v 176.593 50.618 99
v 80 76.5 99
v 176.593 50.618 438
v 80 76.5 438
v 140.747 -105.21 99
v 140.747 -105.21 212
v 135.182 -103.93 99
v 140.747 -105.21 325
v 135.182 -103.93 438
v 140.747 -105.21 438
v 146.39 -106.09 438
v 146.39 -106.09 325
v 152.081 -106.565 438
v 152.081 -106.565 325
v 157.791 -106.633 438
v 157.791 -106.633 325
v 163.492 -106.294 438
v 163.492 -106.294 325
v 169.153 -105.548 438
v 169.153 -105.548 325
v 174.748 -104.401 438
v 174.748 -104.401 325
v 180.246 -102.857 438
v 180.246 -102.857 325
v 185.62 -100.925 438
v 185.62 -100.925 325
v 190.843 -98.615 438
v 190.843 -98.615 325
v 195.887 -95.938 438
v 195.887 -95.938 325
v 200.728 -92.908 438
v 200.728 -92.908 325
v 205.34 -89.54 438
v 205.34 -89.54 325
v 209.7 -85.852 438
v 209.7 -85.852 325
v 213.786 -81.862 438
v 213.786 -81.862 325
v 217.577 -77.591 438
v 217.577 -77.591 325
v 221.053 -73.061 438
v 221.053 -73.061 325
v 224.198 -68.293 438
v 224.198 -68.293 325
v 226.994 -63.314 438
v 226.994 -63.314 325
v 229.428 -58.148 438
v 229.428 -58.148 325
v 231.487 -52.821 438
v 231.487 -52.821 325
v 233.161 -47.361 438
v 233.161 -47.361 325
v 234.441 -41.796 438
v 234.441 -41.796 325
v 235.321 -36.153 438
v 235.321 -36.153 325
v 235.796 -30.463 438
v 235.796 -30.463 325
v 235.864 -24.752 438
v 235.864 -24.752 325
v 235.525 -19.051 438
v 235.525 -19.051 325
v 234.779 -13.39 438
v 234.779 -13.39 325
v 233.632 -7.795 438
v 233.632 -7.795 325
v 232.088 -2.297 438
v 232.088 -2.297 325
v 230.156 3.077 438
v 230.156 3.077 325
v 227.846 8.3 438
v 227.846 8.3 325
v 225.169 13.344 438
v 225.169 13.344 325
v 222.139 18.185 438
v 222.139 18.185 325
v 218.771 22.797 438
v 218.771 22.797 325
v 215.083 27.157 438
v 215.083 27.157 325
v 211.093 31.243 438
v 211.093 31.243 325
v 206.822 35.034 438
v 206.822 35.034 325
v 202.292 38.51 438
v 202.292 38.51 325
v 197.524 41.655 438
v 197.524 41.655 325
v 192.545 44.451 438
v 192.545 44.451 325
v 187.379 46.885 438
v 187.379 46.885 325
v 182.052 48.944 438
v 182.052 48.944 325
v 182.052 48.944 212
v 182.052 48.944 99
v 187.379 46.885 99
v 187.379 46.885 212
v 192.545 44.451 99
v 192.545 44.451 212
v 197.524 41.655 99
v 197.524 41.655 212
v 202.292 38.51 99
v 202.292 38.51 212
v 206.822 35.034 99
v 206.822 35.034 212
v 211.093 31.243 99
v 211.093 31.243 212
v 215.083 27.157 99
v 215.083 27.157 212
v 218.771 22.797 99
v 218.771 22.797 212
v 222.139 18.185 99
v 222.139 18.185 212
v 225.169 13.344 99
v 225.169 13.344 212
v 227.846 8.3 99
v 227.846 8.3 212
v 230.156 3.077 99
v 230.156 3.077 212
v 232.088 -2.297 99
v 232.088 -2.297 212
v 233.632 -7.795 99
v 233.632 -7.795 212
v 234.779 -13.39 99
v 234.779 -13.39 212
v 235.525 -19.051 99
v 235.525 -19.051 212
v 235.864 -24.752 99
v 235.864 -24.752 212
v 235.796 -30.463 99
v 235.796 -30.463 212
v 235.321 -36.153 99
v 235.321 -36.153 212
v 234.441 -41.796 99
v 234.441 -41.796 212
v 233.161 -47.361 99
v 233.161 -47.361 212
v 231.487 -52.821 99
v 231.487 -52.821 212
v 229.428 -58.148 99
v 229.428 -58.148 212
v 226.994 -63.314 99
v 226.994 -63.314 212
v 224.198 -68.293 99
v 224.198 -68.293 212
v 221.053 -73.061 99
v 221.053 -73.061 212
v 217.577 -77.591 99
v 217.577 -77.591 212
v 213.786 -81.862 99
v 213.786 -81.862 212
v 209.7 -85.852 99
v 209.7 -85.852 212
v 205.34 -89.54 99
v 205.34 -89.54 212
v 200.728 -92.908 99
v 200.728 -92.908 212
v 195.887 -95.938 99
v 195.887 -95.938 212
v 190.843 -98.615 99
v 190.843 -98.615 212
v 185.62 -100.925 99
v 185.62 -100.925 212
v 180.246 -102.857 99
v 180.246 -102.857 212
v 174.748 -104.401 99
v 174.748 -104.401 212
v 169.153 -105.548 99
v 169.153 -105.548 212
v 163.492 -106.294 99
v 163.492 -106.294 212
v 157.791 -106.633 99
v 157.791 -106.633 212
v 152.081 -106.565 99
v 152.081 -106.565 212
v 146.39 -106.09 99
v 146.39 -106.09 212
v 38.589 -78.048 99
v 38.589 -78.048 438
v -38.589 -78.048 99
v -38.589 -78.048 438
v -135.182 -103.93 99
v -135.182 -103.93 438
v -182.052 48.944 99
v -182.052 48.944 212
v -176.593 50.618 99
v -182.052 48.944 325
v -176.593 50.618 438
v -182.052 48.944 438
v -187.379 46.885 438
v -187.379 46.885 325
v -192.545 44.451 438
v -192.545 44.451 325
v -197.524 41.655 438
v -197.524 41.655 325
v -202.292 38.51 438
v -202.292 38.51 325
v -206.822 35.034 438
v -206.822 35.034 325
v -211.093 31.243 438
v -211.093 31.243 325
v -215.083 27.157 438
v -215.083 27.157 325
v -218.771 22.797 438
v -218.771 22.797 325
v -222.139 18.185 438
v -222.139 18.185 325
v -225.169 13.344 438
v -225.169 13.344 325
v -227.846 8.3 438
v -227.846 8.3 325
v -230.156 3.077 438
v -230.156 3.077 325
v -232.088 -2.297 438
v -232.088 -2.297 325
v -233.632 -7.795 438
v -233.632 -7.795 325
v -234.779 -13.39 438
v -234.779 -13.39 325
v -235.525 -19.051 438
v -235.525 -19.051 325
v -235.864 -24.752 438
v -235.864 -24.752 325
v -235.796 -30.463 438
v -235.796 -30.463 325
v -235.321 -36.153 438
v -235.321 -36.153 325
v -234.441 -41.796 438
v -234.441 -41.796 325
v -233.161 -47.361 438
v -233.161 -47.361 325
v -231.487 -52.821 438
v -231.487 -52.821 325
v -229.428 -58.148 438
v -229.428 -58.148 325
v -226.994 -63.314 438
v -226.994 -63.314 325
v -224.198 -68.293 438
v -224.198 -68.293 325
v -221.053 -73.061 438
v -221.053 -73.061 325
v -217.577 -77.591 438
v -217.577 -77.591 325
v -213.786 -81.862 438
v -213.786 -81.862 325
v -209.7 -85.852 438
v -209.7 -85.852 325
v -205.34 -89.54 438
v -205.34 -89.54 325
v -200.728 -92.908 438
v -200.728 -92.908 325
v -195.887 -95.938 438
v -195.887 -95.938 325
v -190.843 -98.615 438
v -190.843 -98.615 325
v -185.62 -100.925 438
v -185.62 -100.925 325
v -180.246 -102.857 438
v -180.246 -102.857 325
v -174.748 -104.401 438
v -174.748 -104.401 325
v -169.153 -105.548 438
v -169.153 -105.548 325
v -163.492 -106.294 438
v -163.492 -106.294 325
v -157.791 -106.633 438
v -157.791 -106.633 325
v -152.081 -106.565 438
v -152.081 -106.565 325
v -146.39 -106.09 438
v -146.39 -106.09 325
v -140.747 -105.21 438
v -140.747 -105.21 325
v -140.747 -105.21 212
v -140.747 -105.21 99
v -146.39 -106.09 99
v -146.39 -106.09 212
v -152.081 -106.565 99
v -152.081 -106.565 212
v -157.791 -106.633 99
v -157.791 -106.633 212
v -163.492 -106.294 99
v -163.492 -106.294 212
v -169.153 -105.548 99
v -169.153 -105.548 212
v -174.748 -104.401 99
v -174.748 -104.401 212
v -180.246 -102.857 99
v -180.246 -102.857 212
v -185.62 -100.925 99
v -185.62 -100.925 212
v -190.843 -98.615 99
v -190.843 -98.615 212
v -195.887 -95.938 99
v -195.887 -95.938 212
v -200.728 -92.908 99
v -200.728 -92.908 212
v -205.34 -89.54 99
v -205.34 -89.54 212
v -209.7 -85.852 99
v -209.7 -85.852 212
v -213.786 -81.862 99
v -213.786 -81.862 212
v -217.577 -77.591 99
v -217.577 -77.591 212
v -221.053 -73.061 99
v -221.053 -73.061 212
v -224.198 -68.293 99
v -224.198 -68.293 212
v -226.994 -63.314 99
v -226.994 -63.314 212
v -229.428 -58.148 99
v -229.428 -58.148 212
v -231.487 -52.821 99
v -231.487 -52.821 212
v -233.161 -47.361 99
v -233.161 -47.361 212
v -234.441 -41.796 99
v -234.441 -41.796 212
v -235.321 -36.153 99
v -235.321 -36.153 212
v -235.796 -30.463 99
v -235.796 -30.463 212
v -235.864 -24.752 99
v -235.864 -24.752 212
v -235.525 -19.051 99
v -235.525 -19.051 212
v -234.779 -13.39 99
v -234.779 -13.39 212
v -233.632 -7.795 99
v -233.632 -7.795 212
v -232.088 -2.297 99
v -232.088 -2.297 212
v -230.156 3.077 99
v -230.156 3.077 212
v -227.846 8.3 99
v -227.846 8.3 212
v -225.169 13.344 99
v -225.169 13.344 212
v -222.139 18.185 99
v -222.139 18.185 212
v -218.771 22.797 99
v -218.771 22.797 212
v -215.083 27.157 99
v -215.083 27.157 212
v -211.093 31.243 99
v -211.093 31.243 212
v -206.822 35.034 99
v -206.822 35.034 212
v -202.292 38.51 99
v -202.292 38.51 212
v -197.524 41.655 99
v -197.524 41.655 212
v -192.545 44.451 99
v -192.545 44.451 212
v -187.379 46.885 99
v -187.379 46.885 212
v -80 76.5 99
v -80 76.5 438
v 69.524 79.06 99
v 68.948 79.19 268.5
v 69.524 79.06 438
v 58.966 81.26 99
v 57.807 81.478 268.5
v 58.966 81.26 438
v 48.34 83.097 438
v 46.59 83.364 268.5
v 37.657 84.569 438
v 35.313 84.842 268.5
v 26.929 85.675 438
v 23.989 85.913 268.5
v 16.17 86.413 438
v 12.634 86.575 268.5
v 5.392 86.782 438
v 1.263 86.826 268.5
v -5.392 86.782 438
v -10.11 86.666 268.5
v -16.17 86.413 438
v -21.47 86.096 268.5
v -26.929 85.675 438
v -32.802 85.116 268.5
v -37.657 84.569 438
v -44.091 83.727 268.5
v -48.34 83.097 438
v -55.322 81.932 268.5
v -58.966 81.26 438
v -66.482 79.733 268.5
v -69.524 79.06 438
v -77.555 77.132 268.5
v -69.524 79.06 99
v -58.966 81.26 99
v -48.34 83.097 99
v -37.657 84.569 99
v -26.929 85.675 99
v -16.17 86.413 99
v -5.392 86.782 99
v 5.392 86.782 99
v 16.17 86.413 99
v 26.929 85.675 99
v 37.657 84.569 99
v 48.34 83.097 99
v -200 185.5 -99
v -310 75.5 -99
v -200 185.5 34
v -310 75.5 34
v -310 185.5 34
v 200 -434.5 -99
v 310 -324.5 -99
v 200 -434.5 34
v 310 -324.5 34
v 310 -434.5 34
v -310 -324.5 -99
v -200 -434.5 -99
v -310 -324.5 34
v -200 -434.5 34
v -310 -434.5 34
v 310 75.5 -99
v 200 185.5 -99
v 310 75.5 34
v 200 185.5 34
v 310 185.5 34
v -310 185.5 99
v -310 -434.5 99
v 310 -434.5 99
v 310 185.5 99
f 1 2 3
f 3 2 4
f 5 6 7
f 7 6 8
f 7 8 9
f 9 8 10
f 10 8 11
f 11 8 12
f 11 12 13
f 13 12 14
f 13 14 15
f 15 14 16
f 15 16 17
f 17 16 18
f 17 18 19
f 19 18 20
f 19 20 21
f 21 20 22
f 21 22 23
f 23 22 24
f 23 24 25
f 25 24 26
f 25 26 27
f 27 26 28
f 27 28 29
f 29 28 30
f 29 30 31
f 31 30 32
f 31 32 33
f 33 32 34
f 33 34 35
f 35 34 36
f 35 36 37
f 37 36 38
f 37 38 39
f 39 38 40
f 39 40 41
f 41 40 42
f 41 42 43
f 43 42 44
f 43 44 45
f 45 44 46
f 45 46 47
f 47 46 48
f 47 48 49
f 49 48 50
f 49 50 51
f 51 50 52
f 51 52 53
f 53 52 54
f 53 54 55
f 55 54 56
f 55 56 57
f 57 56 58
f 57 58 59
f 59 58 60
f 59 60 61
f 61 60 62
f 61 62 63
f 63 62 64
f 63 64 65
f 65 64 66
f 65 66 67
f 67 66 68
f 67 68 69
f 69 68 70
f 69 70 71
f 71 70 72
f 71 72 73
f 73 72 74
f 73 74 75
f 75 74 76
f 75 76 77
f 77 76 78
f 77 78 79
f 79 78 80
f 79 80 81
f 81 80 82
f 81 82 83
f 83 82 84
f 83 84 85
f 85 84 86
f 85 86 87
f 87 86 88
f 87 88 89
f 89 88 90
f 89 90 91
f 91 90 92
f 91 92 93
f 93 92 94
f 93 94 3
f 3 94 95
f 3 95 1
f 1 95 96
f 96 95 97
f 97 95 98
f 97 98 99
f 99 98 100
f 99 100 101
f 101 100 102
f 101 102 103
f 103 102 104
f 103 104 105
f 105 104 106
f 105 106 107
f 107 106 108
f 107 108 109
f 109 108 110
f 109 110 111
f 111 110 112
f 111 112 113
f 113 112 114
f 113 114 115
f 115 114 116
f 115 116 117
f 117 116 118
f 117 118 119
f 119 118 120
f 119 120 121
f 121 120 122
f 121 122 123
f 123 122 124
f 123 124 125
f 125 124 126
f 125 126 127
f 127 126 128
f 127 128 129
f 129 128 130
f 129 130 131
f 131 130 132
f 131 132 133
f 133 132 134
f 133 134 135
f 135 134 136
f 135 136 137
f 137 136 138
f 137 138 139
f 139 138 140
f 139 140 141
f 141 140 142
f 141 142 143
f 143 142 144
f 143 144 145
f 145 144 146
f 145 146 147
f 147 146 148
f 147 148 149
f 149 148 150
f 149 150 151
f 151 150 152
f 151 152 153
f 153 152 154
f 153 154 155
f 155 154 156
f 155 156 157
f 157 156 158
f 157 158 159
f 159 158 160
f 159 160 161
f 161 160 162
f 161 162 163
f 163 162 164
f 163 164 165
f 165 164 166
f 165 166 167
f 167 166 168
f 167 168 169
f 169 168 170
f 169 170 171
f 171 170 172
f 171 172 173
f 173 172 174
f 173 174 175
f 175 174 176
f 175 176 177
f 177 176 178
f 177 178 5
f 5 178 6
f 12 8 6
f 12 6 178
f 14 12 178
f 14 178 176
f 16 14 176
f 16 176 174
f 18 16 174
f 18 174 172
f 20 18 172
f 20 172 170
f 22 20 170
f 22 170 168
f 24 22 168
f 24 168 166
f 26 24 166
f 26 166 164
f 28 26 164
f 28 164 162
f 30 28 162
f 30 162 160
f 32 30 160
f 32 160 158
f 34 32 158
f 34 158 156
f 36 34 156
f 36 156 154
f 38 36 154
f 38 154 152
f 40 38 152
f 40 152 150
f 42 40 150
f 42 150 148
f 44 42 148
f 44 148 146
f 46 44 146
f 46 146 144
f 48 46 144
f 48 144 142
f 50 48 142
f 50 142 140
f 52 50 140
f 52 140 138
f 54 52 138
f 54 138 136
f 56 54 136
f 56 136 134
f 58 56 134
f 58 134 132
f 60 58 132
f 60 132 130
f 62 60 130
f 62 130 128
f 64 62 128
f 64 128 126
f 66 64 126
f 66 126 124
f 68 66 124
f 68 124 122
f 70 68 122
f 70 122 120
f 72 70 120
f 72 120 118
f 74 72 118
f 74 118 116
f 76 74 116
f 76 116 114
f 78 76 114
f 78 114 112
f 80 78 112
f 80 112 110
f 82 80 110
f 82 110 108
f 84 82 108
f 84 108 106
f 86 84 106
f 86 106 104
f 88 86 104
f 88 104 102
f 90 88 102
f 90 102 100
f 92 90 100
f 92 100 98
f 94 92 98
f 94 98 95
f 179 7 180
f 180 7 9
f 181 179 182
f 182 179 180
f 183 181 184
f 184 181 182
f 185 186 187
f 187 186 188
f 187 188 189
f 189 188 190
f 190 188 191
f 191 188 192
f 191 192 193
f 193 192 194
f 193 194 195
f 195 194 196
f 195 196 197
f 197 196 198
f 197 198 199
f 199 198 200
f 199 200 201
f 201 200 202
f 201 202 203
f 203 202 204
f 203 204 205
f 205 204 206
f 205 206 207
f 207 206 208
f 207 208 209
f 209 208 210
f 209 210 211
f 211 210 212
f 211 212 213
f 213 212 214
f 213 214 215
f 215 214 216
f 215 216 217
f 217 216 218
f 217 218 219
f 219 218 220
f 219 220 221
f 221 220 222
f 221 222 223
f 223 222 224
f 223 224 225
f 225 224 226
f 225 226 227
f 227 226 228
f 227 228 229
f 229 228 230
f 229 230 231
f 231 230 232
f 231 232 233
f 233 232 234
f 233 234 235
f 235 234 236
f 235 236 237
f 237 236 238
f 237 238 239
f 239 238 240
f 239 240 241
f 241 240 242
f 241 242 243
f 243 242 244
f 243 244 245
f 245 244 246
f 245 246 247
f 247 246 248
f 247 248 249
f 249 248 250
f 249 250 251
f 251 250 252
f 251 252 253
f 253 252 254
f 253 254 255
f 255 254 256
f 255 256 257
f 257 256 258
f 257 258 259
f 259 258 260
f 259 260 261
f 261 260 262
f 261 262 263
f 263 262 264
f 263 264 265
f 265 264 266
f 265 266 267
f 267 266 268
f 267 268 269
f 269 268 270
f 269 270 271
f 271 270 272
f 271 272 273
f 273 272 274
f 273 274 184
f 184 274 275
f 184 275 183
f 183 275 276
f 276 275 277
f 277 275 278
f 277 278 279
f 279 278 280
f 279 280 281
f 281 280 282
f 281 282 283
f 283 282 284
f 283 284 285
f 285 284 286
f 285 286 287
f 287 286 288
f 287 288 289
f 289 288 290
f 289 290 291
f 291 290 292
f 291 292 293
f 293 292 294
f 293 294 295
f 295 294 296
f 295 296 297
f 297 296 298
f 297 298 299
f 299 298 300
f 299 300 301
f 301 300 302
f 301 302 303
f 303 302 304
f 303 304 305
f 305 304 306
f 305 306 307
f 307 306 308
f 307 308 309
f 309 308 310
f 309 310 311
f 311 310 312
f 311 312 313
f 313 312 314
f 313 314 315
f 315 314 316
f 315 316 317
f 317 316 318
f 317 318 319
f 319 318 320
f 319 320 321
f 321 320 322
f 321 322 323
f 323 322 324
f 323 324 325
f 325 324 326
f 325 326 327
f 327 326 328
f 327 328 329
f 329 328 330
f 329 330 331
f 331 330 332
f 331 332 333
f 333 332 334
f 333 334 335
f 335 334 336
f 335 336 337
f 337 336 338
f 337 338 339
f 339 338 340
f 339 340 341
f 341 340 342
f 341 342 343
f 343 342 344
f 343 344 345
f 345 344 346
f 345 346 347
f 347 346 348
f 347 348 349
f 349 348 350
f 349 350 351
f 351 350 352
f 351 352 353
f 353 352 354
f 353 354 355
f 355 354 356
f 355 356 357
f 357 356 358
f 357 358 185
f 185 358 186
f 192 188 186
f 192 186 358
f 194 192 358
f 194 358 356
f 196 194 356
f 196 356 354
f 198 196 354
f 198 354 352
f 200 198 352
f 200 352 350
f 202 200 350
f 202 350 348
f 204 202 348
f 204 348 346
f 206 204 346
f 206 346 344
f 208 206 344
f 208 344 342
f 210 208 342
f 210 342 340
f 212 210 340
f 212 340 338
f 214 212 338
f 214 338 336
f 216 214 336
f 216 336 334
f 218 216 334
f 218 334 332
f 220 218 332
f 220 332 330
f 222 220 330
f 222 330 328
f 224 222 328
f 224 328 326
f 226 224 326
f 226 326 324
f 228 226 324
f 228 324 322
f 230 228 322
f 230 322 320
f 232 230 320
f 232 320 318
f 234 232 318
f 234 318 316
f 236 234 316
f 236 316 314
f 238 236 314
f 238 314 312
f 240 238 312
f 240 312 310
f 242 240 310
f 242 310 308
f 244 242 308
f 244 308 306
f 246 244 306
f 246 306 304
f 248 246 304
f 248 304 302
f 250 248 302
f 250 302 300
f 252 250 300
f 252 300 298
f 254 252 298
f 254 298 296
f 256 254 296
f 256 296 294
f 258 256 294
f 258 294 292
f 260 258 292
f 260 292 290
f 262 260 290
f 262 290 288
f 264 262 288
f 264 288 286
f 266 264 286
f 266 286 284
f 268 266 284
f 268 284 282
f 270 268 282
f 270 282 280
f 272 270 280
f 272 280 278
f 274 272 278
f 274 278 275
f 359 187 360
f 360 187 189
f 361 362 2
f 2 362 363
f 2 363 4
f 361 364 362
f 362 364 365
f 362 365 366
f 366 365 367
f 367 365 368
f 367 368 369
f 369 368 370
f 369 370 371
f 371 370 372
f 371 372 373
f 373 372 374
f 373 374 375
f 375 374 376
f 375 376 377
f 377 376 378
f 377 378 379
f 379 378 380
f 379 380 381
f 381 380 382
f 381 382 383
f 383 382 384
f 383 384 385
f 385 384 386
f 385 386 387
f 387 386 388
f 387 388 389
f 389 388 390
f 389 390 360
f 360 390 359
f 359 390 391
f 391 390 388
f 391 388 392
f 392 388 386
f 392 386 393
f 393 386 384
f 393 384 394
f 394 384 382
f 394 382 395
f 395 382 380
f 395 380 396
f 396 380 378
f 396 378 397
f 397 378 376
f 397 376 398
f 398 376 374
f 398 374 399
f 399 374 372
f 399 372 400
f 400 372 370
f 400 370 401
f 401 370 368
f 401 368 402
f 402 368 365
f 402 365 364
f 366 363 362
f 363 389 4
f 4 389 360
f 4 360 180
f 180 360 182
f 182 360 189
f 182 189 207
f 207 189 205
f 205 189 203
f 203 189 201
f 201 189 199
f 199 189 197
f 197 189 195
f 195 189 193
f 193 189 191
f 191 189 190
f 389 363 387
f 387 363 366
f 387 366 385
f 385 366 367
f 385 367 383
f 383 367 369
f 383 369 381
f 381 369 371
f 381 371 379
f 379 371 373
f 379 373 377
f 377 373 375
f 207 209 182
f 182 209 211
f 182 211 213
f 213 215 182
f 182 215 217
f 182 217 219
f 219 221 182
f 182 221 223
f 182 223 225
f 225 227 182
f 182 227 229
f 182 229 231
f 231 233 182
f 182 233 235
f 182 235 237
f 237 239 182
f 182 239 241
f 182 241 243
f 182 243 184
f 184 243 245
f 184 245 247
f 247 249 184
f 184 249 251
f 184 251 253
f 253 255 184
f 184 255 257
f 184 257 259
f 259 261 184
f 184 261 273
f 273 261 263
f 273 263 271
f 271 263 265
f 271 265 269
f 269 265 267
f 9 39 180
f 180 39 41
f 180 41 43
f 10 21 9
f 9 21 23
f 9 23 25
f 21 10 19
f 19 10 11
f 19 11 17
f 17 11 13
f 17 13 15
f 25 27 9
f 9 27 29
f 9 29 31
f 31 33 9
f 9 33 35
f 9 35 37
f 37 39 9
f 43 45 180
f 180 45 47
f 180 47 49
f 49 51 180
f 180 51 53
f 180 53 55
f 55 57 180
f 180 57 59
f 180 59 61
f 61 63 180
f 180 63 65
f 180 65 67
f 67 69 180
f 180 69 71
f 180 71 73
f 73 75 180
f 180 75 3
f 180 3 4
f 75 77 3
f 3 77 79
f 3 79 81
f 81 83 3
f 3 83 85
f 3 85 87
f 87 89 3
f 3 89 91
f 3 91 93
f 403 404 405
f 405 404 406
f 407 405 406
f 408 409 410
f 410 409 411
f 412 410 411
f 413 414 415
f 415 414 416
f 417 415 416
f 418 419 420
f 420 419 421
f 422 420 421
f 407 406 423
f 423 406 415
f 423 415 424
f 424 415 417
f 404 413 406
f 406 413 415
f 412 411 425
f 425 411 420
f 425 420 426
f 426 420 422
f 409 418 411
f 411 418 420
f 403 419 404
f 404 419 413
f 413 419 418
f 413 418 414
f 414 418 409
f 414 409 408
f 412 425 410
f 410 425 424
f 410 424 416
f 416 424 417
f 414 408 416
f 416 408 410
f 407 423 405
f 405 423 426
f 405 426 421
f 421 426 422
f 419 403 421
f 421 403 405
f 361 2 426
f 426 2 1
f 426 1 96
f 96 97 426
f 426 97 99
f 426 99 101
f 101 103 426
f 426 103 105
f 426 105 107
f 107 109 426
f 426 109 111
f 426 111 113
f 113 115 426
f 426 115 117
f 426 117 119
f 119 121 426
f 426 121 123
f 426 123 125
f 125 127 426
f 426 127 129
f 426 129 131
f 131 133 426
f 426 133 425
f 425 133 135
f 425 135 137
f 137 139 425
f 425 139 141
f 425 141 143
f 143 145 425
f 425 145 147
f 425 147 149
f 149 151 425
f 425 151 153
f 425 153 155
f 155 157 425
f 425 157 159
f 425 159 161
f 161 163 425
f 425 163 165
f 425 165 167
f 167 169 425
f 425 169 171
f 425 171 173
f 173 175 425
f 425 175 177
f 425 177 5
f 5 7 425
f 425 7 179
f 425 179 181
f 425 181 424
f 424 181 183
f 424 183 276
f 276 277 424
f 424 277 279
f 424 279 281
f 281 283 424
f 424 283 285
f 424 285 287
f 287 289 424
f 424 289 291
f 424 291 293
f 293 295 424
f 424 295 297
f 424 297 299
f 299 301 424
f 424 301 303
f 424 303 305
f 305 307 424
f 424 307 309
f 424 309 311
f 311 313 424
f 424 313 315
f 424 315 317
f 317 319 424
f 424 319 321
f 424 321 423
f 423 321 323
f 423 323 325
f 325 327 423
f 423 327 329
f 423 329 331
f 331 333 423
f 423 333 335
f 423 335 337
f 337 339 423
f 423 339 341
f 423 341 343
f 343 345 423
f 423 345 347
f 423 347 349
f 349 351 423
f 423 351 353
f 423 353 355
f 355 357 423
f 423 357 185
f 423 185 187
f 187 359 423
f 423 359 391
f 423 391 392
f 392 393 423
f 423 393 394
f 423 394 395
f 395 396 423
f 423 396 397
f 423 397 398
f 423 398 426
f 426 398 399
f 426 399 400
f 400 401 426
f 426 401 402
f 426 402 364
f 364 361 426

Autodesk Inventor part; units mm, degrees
ref_plane "YZ Plane" through (0, 0, 0) normal (1, 0, 0) x (0, 1, 0)
ref_plane "XZ Plane" through (0, 0, 0) normal (0, 1, 0) x (-1, 0, 0)
ref_plane "XY Plane" through (0, 0, 0) normal (0, 0, 1) x (1, 0, 0)
sketch "Sketch1" plane through (0, 0, 0) normal (0, 0, 1) x (1, 0, 0)
  line L0 (-310, 185.5) -> (310, 185.5)
  line L1 (310, 185.5) -> (310, -434.5)
  line L2 (310, -434.5) -> (-310, -434.5)
  line L3 (-310, -434.5) -> (-310, 185.5)
  point P0 (0, 0)
  point P1 (0, 185.5)
  dimension "d0" = 620
  dimension "d1" = 620
  dimension "d2" = 185.5
extrude "Extrusion1" add sketch "Sketch1" along normal mid plane 198
sketch "Sketch2" plane through (0, 0, -99) normal (0, 0, -1) x (-1, 0, 0)
  line L0 (-310, 185.5) -> (310, 185.5) projected
  line L1 (-310, 185.5) -> (-310, 75.5)
  line L2 (-310, -434.5) -> (-310, 185.5) projected
  line L3 (-310, 75.5) -> (-200, 185.5)
  line L4 (-310, 185.5) -> (-200, 185.5)
  line L5 (-310, -124.5) -> (0, -124.5)
  line L6 (0, -124.5) -> (0, 185.5)
  line L7 (-310, -434.5) -> (-310, -324.5)
  line L8 (-310, -434.5) -> (-200, -434.5)
  line L9 (-200, -434.5) -> (-310, -324.5)
  line L10 (310, -434.5) -> (200, -434.5)
  line L11 (310, -434.5) -> (310, -324.5)
  line L12 (310, -324.5) -> (200, -434.5)
  line L13 (310, 185.5) -> (310, 75.5)
  line L14 (310, 185.5) -> (200, 185.5)
  line L15 (200, 185.5) -> (310, 75.5)
  point P0 (0, 0)
  dimension "d5" = 110
  dimension "d6" = 110
  dimension "d9" = 360
extrude "Extrusion2" cut sketch "Sketch2" against normal blind 133 contours L0 L13 L15 | L9 L8 L2 | L0 L3 L1 | L10 L12 L11
sketch "Sketch3" plane through (0, 0, 99) normal (0, 0, 1) x (1, 0, 0)
  circle A0 centre (-155.8871, -26.656) radius 80 construction
  line L0 (-176.5926, 50.6181) -> (-80, 76.5)
  line L1 (-135.1815, -103.93) -> (-38.589, -78.0481)
  line L2 (-80, 76.5) -> (-38.589, -78.0481) construction
  line L3 (-80, 76.5) -> (80, 76.5) construction
  line L4 (80, 76.5) -> (38.589, -78.0481) construction
  line L5 (-38.589, -78.0481) -> (38.589, -78.0481)
  circle A1 centre (155.8871, -26.656) radius 80 construction
  line L6 (38.589, -78.0481) -> (135.1815, -103.93)
  line L7 (80, 76.5) -> (176.5926, 50.6181)
  arc A2 (-176.5926, 50.6181) -> (-135.1815, -103.93) centre (-155.8871, -26.656) ccw
  arc A3 (135.1815, -103.93) -> (176.5926, 50.6181) centre (155.8871, -26.656) ccw
  circle A4 centre (-155.8871, -26.656) radius 5.25
  circle A5 centre (155.8871, -26.656) radius 5.25
  line L8 (-106.5, 56.5) -> (-106.5, -56.5)
  line L9 (-106.5, -56.5) -> (106.5, -56.5)
  line L10 (106.5, -56.5) -> (106.5, 56.5)
  line L11 (106.5, 56.5) -> (-106.5, 56.5)
  arc A6 (80, 76.5) -> (-80, 76.5) centre (0, -228.172) ccw
  circle A7 centre (0, 71.664) radius 5.25
  line L12 (310, -434.5) -> (310, 185.5) construction
  line L13 (310, 185.5) -> (-310, 185.5) construction
  line L14 (0, 185.5) -> (0, 0) construction
  line L15 (0, 0) -> (310, 0) construction
  line L16 (310, 75.5) -> (310, -324.5) construction
  line L17 (0, -78.0481) -> (0, -56.5)
  point P0 (0, 76.5)
  point P1 (-106.5, 0)
  dimension "d32" = 160
  dimension "d33" = 100
  dimension "d34" = 100
  dimension "d35" = 160
  dimension "d36" = 160
  dimension "d37" = 160
  dimension "d38" = 75
  dimension "d39" = 75
  dimension "d40" = 160
  dimension "d41" = 100
  dimension "d42" = 100
  dimension "d43" = 10.5
  dimension "d44" = 10.5
  dimension "d45" = 113
  dimension "d46" = 213
  dimension "d47" = 20
  dimension "d48" = 315
  dimension "d49" = 10.5
  dimension "d50" = 15.164
  dimension "d51" = 185.5
extrude "Extrusion3" add sketch "Sketch3" along normal blind 339 contours L9 L8 L11 L10 | L0 A6 L7 A3 L6 L5 L1 A2 | A4 | A5 | A7
properties part number "Base" material "ABS Plastic"
